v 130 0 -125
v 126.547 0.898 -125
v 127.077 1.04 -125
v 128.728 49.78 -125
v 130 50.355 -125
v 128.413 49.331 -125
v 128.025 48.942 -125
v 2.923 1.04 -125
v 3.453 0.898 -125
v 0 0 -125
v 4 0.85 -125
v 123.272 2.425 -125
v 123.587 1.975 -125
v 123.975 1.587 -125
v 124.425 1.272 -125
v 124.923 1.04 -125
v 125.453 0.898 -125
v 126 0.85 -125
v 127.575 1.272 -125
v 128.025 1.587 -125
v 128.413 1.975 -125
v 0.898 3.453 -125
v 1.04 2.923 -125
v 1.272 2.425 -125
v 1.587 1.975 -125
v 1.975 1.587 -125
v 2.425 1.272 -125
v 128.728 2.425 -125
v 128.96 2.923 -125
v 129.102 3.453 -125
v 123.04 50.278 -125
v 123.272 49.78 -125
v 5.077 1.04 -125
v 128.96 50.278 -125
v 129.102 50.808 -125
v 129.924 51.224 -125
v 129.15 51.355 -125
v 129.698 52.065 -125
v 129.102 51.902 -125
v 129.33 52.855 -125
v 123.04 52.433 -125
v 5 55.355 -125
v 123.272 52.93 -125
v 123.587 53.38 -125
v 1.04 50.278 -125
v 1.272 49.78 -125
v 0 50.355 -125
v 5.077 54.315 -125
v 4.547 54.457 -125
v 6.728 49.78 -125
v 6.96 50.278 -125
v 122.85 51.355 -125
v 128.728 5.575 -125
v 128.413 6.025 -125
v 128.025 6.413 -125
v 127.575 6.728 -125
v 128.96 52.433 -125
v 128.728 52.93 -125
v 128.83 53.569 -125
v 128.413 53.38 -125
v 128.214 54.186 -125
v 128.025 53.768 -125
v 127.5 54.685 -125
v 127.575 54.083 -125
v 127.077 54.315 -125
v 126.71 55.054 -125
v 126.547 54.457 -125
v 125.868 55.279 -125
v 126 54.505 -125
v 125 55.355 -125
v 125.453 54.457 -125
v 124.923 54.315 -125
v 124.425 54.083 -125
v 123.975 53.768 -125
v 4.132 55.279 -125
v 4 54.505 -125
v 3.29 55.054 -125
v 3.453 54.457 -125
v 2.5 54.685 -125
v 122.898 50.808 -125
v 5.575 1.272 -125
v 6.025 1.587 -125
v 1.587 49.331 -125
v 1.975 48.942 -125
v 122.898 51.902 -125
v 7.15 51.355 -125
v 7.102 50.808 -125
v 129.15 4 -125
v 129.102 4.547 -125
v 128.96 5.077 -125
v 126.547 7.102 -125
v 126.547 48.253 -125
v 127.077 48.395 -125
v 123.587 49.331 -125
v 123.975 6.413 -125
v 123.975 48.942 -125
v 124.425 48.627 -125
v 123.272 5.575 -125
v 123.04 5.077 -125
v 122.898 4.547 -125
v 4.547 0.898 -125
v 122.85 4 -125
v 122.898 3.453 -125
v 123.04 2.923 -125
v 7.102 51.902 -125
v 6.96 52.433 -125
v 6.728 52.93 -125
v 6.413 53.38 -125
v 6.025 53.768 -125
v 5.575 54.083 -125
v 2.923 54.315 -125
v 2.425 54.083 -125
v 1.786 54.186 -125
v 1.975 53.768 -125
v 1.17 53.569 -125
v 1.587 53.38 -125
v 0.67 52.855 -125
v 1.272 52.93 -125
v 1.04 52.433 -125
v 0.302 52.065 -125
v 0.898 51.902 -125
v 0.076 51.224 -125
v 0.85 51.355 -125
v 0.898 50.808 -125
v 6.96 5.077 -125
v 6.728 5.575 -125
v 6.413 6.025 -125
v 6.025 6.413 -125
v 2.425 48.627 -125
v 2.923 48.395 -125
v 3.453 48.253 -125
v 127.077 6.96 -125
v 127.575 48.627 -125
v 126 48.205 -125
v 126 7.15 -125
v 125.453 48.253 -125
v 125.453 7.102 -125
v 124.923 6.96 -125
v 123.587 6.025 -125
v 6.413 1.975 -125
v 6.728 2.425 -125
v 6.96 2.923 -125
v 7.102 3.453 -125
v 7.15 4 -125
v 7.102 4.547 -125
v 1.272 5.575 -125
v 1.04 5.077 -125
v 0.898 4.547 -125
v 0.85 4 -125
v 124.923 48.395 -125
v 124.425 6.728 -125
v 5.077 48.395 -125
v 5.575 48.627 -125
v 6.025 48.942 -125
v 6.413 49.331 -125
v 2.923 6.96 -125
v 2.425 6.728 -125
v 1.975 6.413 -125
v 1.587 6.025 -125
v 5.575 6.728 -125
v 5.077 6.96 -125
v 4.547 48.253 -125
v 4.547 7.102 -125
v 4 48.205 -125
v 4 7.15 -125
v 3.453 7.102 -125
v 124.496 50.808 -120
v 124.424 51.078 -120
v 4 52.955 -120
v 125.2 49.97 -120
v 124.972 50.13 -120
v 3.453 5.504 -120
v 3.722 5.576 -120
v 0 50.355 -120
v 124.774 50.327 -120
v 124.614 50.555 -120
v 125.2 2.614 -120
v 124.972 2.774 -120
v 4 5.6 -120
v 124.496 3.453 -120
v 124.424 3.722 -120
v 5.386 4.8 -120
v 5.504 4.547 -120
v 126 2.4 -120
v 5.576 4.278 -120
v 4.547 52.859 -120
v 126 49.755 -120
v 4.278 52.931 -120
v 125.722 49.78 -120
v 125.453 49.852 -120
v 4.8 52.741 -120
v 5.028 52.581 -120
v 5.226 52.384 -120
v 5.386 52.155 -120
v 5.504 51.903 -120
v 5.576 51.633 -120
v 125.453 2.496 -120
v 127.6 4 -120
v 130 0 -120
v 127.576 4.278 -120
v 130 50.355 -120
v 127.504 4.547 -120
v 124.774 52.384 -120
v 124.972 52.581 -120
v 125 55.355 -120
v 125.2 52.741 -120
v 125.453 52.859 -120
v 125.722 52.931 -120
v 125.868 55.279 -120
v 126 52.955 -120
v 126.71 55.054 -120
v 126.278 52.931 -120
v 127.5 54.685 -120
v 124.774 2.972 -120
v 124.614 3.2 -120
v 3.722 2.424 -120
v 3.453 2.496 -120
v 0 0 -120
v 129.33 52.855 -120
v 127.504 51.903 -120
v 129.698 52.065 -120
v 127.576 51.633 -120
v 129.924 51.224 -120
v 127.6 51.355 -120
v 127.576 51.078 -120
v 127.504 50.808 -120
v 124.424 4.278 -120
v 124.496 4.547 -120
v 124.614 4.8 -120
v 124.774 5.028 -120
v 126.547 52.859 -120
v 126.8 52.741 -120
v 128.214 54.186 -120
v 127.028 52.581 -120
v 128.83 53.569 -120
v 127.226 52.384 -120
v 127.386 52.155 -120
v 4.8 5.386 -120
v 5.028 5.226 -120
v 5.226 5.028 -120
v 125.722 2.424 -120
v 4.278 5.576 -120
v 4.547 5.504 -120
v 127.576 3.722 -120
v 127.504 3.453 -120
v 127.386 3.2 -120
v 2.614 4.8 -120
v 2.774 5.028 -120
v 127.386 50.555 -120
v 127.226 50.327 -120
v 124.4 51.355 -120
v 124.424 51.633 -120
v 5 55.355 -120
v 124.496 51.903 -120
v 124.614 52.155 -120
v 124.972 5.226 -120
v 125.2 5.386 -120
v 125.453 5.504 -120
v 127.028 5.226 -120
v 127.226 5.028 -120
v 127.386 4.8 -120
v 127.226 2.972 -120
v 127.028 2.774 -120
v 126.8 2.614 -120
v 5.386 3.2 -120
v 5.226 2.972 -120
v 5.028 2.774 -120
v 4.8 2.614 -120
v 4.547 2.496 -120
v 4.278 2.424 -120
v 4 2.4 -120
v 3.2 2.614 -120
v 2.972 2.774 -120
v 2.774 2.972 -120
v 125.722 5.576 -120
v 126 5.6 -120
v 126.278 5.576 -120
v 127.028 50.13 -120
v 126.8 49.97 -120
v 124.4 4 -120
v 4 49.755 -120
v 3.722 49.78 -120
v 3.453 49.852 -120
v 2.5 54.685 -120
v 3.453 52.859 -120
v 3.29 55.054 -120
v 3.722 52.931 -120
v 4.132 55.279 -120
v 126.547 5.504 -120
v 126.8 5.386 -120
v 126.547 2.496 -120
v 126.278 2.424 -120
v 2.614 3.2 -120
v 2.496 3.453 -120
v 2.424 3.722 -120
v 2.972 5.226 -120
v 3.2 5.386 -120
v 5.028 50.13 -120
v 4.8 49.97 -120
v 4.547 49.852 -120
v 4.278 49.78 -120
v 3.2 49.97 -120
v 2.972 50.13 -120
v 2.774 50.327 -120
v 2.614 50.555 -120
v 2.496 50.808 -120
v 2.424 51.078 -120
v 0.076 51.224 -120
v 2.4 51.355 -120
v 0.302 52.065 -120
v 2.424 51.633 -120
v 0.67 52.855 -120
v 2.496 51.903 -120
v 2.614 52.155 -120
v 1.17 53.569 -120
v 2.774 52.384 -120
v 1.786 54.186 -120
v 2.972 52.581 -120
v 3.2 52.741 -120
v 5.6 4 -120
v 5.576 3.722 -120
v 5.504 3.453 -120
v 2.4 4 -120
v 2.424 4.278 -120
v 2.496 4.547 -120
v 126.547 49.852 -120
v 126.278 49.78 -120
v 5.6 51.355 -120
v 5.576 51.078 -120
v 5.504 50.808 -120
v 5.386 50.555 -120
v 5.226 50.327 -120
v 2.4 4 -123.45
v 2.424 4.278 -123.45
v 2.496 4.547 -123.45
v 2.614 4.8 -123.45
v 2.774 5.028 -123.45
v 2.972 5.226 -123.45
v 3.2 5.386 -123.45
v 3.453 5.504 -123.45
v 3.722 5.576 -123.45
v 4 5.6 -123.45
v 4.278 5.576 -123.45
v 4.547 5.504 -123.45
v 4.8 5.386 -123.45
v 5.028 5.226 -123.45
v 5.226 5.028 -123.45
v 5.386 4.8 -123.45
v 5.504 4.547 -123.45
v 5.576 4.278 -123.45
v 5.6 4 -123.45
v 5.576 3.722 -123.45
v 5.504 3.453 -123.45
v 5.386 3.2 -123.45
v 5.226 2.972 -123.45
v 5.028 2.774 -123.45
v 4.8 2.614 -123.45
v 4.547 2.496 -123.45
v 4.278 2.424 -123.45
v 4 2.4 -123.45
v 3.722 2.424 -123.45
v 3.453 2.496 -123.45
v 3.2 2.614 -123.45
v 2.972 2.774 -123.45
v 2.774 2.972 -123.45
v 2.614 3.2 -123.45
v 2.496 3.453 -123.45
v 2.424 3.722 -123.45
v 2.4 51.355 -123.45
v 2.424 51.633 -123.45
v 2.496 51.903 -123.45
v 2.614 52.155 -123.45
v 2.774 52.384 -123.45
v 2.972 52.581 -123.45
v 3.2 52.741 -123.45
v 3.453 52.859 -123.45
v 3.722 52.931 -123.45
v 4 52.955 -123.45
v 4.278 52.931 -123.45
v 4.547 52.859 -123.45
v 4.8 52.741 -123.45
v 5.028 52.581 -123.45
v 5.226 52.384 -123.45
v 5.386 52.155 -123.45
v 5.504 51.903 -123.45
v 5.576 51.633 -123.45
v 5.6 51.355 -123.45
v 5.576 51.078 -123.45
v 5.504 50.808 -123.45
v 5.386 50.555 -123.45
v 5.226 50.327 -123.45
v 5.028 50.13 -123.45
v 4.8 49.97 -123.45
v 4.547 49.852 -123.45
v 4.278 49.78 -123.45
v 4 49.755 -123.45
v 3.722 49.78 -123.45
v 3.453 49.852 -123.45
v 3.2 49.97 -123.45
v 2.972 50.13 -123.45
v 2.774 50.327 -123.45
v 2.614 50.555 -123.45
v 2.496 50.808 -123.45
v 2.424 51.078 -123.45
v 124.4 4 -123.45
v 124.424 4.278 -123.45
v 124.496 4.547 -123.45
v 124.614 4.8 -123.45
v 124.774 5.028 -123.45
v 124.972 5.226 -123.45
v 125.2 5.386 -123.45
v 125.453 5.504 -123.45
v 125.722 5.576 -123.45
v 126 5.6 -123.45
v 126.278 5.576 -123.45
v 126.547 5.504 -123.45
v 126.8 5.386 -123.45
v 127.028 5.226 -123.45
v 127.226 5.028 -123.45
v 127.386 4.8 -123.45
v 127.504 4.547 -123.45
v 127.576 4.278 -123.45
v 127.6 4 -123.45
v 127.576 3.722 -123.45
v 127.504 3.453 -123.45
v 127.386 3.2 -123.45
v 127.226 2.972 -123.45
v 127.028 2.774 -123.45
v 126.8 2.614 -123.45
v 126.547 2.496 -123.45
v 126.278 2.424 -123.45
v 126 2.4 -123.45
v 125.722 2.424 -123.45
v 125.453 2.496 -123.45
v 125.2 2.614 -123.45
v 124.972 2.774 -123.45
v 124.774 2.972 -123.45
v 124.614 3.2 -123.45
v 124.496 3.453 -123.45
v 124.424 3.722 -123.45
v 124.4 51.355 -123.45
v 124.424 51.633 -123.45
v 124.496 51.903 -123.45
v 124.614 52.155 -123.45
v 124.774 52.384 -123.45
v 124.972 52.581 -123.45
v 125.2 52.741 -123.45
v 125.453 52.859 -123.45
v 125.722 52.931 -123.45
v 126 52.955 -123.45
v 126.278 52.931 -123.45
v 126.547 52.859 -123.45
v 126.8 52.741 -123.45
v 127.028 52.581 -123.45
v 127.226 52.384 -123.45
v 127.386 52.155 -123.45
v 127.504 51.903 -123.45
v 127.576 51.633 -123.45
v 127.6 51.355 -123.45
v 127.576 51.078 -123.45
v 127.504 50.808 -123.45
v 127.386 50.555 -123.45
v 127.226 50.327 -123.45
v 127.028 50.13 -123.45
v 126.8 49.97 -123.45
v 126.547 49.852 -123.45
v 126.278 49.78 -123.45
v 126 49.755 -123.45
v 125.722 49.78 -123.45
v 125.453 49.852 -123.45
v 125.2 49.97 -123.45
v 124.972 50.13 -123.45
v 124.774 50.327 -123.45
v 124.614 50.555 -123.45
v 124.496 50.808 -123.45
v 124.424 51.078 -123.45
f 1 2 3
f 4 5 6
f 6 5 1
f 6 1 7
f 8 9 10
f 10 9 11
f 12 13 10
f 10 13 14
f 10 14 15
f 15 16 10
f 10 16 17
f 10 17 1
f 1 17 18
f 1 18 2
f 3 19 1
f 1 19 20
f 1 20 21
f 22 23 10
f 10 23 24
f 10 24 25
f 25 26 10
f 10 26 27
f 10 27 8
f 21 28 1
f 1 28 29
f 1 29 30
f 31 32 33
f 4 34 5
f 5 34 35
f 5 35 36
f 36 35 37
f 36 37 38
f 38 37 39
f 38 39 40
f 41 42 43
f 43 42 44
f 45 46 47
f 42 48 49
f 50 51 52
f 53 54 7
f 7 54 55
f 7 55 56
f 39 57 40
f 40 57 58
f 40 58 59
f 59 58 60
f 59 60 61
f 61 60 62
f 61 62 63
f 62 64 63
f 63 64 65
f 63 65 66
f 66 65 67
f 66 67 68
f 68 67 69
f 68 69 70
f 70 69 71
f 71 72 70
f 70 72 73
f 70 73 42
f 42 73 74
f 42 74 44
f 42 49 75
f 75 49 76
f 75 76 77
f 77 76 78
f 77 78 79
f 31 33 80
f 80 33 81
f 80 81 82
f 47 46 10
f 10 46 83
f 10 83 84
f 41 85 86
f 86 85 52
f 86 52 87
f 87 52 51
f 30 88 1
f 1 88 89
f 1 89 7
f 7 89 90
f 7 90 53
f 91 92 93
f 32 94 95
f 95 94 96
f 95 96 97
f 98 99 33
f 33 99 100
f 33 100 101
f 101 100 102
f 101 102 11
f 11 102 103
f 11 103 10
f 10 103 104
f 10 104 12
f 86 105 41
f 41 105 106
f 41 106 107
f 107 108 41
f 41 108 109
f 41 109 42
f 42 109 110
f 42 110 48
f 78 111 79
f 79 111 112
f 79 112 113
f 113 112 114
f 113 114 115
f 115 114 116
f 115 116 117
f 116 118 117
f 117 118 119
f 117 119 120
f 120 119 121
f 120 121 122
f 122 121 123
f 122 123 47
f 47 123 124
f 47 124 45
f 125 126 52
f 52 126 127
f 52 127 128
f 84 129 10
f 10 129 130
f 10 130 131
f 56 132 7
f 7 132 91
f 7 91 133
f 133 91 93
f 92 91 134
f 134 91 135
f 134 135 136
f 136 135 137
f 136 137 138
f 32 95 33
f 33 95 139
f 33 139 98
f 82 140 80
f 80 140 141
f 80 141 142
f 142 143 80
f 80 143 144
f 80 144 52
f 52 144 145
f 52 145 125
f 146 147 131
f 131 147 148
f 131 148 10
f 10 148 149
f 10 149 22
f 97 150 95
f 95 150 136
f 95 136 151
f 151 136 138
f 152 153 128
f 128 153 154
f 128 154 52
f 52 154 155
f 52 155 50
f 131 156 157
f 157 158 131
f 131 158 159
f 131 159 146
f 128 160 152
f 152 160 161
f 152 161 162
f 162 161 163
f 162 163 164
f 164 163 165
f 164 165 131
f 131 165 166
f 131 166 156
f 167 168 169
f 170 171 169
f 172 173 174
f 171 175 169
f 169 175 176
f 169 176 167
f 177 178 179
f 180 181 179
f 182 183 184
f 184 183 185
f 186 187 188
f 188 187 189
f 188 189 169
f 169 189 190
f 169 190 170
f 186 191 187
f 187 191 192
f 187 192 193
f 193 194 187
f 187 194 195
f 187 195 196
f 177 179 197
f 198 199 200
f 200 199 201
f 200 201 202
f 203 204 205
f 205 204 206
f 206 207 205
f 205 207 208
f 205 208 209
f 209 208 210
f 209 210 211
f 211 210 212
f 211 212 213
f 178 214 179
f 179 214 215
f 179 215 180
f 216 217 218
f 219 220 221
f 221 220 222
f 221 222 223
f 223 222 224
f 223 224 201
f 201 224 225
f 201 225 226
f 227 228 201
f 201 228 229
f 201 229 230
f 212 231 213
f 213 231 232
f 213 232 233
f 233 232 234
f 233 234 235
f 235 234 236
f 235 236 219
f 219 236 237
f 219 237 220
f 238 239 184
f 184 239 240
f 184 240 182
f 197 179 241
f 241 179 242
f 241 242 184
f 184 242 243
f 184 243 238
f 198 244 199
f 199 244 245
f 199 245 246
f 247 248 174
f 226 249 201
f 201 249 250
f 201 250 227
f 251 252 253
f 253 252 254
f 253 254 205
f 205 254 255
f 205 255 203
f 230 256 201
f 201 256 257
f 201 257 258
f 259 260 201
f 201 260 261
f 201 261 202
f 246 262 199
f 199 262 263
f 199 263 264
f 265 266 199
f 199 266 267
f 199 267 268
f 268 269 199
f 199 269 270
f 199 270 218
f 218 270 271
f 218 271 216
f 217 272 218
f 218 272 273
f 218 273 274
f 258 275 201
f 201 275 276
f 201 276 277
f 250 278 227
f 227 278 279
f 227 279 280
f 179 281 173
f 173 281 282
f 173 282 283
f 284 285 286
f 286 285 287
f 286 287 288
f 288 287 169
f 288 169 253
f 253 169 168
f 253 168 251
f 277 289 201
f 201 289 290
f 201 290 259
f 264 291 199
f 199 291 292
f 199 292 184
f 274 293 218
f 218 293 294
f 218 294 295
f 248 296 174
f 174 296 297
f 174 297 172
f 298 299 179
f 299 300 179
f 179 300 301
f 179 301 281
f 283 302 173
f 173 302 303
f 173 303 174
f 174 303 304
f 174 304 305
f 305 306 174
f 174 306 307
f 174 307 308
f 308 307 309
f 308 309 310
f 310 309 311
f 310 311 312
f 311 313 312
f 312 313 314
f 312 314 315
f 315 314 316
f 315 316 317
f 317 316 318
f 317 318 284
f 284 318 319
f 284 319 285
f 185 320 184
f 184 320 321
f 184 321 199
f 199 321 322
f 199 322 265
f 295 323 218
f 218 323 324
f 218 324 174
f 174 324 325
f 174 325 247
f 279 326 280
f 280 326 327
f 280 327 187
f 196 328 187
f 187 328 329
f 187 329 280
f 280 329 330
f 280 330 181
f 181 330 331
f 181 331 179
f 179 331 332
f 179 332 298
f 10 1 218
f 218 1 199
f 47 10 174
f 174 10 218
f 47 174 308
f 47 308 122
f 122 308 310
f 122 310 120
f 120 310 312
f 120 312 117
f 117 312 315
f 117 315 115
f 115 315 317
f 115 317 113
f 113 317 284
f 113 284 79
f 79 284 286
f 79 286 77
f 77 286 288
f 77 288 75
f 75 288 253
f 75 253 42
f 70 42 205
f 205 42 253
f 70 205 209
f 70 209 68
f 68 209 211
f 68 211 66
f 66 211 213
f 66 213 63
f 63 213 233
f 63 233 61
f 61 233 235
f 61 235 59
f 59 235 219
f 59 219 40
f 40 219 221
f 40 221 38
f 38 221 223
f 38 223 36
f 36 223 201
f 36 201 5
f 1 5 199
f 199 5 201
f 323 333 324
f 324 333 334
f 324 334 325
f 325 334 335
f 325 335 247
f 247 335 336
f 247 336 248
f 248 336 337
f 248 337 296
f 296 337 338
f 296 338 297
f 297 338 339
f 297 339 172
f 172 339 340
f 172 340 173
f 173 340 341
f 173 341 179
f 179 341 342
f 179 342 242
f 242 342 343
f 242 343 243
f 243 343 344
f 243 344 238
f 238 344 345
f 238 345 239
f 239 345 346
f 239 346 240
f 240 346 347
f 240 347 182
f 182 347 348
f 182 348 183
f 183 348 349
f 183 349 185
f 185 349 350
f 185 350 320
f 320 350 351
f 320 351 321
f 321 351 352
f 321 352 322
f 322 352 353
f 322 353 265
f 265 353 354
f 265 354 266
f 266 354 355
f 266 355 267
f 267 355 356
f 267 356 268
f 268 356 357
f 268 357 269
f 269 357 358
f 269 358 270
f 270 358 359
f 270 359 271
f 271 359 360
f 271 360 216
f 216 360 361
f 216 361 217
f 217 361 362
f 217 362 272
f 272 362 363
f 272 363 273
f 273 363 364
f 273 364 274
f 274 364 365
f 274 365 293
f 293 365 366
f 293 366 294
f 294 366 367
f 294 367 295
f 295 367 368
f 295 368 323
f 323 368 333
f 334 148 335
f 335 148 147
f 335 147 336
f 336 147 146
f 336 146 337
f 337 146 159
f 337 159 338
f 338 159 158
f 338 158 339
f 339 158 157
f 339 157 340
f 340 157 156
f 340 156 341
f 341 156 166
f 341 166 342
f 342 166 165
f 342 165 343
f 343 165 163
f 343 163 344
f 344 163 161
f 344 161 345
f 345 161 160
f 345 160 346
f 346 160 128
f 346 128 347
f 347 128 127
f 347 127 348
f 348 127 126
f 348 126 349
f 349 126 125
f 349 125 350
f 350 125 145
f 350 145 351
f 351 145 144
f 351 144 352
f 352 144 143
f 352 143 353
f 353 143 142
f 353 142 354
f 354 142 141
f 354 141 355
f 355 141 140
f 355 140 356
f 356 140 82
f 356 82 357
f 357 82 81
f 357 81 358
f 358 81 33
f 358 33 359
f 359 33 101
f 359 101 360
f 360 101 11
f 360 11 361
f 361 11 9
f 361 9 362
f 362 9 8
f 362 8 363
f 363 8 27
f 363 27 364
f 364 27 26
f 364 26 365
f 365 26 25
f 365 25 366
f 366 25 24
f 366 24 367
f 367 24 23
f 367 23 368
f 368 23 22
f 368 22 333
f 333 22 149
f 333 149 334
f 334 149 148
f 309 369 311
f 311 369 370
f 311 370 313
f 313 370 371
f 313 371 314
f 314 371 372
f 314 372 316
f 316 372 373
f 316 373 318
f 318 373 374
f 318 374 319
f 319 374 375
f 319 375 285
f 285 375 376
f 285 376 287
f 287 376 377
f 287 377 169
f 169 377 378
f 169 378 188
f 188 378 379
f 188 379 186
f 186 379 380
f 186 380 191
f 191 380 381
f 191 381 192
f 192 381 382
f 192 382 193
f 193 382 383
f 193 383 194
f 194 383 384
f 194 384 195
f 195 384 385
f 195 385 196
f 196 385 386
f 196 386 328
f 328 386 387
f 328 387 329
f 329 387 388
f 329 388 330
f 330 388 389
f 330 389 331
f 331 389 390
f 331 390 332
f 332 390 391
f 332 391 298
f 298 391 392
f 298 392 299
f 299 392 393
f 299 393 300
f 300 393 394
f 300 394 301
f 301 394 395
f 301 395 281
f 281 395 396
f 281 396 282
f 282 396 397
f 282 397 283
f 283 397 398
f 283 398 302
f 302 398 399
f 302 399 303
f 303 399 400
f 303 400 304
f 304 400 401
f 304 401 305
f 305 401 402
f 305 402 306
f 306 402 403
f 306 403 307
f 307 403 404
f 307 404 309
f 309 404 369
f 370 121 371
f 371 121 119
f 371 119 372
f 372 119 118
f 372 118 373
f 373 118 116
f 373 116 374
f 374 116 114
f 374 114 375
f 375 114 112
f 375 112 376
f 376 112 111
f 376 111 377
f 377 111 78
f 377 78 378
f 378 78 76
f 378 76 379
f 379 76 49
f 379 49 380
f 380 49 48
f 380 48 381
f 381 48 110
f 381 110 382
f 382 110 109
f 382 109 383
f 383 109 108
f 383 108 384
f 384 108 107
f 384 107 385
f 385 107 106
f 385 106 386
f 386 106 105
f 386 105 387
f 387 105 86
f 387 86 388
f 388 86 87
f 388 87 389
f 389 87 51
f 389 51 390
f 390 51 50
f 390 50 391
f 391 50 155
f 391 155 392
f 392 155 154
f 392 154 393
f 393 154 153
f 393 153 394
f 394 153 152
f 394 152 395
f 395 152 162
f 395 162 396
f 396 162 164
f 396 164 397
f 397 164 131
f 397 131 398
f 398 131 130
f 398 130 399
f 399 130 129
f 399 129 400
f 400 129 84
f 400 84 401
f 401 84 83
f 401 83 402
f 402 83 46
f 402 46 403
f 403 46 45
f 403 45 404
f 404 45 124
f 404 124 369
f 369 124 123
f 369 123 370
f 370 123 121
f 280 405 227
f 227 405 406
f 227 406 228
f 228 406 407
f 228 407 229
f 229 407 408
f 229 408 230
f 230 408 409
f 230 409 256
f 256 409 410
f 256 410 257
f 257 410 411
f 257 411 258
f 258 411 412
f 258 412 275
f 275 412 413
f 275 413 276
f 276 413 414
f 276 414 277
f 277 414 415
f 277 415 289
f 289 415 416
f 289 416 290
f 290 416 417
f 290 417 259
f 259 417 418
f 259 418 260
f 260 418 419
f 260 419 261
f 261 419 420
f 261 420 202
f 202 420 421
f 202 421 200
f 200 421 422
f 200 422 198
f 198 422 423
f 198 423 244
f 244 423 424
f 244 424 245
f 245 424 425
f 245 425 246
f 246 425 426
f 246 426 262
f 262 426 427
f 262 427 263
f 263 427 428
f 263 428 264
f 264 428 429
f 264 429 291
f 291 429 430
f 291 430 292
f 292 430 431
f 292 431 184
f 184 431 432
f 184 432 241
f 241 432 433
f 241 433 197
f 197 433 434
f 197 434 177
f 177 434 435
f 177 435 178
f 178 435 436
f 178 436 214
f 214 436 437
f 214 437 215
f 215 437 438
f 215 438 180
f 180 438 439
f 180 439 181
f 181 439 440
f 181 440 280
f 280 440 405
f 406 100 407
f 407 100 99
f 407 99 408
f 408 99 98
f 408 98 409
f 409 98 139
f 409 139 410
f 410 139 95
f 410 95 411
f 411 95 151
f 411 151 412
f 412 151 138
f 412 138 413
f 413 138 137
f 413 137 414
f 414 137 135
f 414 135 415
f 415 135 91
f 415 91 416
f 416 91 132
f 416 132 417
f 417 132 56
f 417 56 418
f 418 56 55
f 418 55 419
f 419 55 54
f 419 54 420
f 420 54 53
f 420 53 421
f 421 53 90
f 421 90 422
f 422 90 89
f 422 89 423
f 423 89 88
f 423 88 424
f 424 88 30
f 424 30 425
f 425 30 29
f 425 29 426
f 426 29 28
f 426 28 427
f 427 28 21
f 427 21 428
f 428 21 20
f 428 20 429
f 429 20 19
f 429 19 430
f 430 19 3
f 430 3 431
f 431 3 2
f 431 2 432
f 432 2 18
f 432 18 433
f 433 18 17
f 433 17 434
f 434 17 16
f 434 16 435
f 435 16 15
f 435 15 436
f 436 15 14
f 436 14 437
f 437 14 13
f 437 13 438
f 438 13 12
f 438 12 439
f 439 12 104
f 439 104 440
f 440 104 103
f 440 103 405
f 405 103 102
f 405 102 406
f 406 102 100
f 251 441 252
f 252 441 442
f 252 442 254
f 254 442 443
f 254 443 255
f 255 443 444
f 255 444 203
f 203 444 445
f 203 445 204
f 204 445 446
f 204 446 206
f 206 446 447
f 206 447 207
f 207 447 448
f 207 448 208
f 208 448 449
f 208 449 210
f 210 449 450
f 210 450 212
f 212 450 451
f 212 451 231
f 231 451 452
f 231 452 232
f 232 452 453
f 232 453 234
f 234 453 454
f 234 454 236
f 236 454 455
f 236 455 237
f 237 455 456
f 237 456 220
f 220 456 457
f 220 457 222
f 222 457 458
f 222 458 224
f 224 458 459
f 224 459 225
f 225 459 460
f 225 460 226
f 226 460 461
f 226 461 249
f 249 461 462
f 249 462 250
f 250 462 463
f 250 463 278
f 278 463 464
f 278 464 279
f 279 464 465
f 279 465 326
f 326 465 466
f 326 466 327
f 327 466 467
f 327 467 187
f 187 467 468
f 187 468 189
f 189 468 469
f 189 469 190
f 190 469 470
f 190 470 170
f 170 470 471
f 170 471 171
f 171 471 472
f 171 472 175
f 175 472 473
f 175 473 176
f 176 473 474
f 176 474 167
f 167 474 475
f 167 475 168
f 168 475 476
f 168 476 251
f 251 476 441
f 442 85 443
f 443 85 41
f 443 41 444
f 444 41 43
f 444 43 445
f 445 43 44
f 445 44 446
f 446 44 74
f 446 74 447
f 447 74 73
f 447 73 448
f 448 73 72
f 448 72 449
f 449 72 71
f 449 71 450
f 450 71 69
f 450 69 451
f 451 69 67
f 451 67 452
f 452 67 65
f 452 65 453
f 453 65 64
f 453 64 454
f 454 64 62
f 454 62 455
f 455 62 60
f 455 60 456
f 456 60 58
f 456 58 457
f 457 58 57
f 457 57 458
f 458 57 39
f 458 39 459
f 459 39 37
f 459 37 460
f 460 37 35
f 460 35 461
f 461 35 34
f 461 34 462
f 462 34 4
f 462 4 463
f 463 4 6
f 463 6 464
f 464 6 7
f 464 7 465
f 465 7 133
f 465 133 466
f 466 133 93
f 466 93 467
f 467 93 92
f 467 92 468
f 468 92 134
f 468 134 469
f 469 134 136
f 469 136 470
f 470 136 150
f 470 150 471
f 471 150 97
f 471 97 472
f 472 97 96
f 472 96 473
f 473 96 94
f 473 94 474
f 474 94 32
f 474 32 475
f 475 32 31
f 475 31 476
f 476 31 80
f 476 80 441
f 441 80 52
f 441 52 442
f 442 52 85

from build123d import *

# Parameters (mm, degrees)
BOSS_EXTRUDE1_DEPTH                                 = 130
SHELL1_T                                            = -5
SKETCH3_R                                           = 3.4
SKETCH3_W                                           = 73.1
SKETCH3_H                                           = 26.5
CUT_EXTRUDE1_DEPTH                                  = 5
FILLET1_R                                           = 10
FILLET2_R                                           = 5
CUT_EXTRUDE2_DEPTH                                  = 5
FILLET3_R                                           = 5
CUT_EXTRUDE3_REACH                                  = 191.36
SKETCH5_R                                           = 1.4
CUT_EXTRUDE4_REACH                                  = 191.36
SKETCH6_R                                           = 1.1
CUT_EXTRUDE5_REACH                                  = 185.945
SKETCH7_R                                           = 1.5
CSK_FOR_M3_COUNTERSUNK_FLAT_HEAD_SCREW2_D           = 3.2
CSK_FOR_M3_COUNTERSUNK_FLAT_HEAD_SCREW2_DEPTH       = 8
CSK_FOR_M3_COUNTERSUNK_FLAT_HEAD_SCREW2_CSINK_D     = 6.3
CSK_FOR_M3_COUNTERSUNK_FLAT_HEAD_SCREW2_CSINK_ANGLE = 90
CSK_FOR_M3_COUNTERSUNK_FLAT_HEAD_SCREW2_TIP         = 0.96137699
CUT_EXTRUDE6_REACH                                  = 187.376
SKETCH15_R                                          = 1.2
CUT_EXTRUDE7_DEPTH                                  = 20
SKETCH16_R                                          = 1.2
BOSS_EXTRUDE2_DEPTH                                 = 5
CSK_FOR_M3_COUNTERSUNK_FLAT_HEAD_SCR_2_COUNT        = 2
CSK_FOR_M3_COUNTERSUNK_FLAT_HEAD_SCR_2_PITCH        = 47.355339059
CSK_FOR_M3_COUNTERSUNK_FLAT_HEAD_SCR_3_COUNT        = 2
CSK_FOR_M3_COUNTERSUNK_FLAT_HEAD_SCR_3_PITCH        = 122
CSK_FOR_M3_COUNTERSUNK_FLAT_HEAD_SCR_4_COUNT        = 2
CSK_FOR_M3_COUNTERSUNK_FLAT_HEAD_SCR_4_PITCH        = 130.868361866


with BuildPart() as part:
    # Sketch2 → Boss-Extrude1 (new body)
    with BuildSketch(Plane(origin=(0, 0, 0), x_dir=(0, 0, -1), z_dir=(1, 0, 0))):
        Polygon((0, 0), (0, 20), (35.355339059, 55.355339059), (120, 55.355339059), (120, 0), align=None)
    extrude(amount=BOSS_EXTRUDE1_DEPTH)

    # Shell1
    shell1_openings = [part.faces().sort_by_distance(p)[0] for p in [
        (65, 27.67766953, -120),
    ]]
    offset(amount=SHELL1_T, openings=shell1_openings, kind=Kind.INTERSECTION)

    # Sketch3 → Cut-Extrude1 (cut)
    with BuildSketch(Plane(origin=(0, 10, 10), x_dir=(1, 0, 0), z_dir=(0, 0.7071067811865486, 0.7071067811865465))):
        with Locations(Location((108.1, 39.142135624, 0), (0, 0, 270))):
            Circle(SKETCH3_R)
        with Locations((53.55, 39.142135624)):
            Rectangle(SKETCH3_W, SKETCH3_H)
    extrude(amount=-CUT_EXTRUDE1_DEPTH, mode=Mode.SUBTRACT)

    # Fillet1
    # the kernel refuses this fillet: 10 mm, written as the material it adds along each edge
    with BuildSketch(Plane(origin=(125, 50.355339059, -37.426406871), x_dir=(0, 0, -1), z_dir=(-1, 0, 0)), Plane(origin=(125, 17.928932188, -5), x_dir=(0, 0.7071067811865465, -0.7071067811865486), z_dir=(-1, 0, 0))) as fillet1_piece_1:
        with BuildLine():
            CenterArc((FILLET1_R * 0.414213562373, FILLET1_R), FILLET1_R, 225, 45)
            Line((-FILLET1_R * 0.292893218813, FILLET1_R * 0.292893218813), (0, 0))
            Line((0, 0), (FILLET1_R * 0.414213562373, 0))
        make_face()
    extrude(amount=120)
    with BuildSketch(Plane(origin=(5, 5, -5), x_dir=(0, 0, -1), z_dir=(1, 0, 0))) as fillet1_piece_2:
        with BuildLine():
            CenterArc((FILLET1_R, FILLET1_R), FILLET1_R, 180, 90)
            Line((0, FILLET1_R), (0, 0))
            Line((0, 0), (FILLET1_R, 0))
        make_face()
    extrude(amount=120)
    # the kernel refuses this fillet: 10 mm, written as the material it takes off along each edge
    with BuildSketch(Plane(origin=(-10.355339059, 20, 0), x_dir=(0, -1, 0), z_dir=(1, 0, 0)), Plane(origin=(-10.355339059, 55.355339059, -35.355339059), x_dir=(0, -0.7071067811865476, 0.7071067811865476), z_dir=(1, 0, 0))) as fillet1_2_piece_1:
        with BuildLine():
            CenterArc((FILLET1_R * 0.414213562373, FILLET1_R), FILLET1_R, 225, 45)
            Line((-FILLET1_R * 0.292893218813, FILLET1_R * 0.292893218813), (0, 0))
            Line((0, 0), (FILLET1_R * 0.414213562373, 0))
        make_face()
    extrude(amount=150.710678119, mode=Mode.SUBTRACT)

    # Fillet2
    fillet2_edges = [part.edges().sort_by_distance(p)[0] for p in [
        (130, 55.355339059, -79.748737342),
        (0, 7.928932188, 0),
        (130, 7.928932188, 0),
        (0, 37.67766953, -17.67766953),
        (0, 54.594134384, -35.670640359),
        (0, 19.6846987, -0.761204675),
        (130, 37.67766953, -17.67766953),
        (130, 54.594134384, -35.670640359),
        (130, 19.6846987, -0.761204675),
        (0, 55.355339059, -79.748737342),
    ]]
    fillet(fillet2_edges, radius=FILLET2_R)

    # Sketch4 → Cut-Extrude2 (cut)
    with BuildSketch(Plane(origin=(130, 0, 0), x_dir=(0, 0, -1), z_dir=(1, 0, 0))):
        with BuildLine():
            Line((108, 22), (112, 22))
            ThreePointArc((112, 22), (113.414213562, 21.414213562), (114, 20))
            Line((114, 20), (114, 17))
            ThreePointArc((114, 17), (113.414213562, 15.585786438), (112, 15))
            Line((112, 15), (108, 15))
            ThreePointArc((108, 15), (106.585786438, 15.585786438), (106, 17))
            Line((106, 17), (106, 20))
            ThreePointArc((106, 20), (106.585786438, 21.414213562), (108, 22))
        make_face()
    extrude(amount=-CUT_EXTRUDE2_DEPTH, mode=Mode.SUBTRACT)

    # Fillet3
    # the kernel refuses this fillet: 5 mm, written as the material it adds along each edge
    with BuildSketch(Plane(origin=(5, 50.355339059, -120), x_dir=(1, 0, 0), z_dir=(0, 0, 1))) as fillet3_piece_1:
        with BuildLine():
            CenterArc((FILLET3_R, -FILLET3_R), FILLET3_R, 90, 90)
            Line((0, -FILLET3_R), (0, 0))
            Line((0, 0), (FILLET3_R, 0))
        make_face()
    fillet3_piece_1_solid = extrude(amount=78.431457505, mode=Mode.PRIVATE)
    with BuildSketch(Plane(origin=(125, 50.355339059, -120), x_dir=(-1, 0, 0), z_dir=(0, 0, 1))) as fillet3_piece_2:
        with BuildLine():
            CenterArc((FILLET3_R, FILLET3_R), FILLET3_R, 180, 90)
            Line((0, FILLET3_R), (0, 0))
            Line((0, 0), (FILLET3_R, 0))
        make_face()
    fillet3_piece_2_solid = extrude(amount=78.431457505, mode=Mode.PRIVATE)
    with BuildSketch(Plane(origin=(5, 5, -15), x_dir=(0, 1, 0), z_dir=(0, 0, -1)), Plane(origin=(125, 5, -15), x_dir=(-1, 0, 0), z_dir=(0, 0, -1))) as fillet3_piece_3:
        with BuildLine():
            CenterArc((FILLET3_R, FILLET3_R), FILLET3_R, 180, 90)
            Line((0, FILLET3_R), (0, 0))
            Line((0, 0), (FILLET3_R, 0))
        make_face()
    fillet3_piece_3_solid = extrude(amount=105, mode=Mode.PRIVATE)
    with BuildSketch(Plane(origin=(5, 47.426406871, -34.497474683), x_dir=(0, -0.7071067811865487, -0.7071067811865464), z_dir=(0, -0.7071067811865465, 0.7071067811865487))) as fillet3_piece_4:
        with BuildLine():
            CenterArc((FILLET3_R, FILLET3_R), FILLET3_R, 180, 90)
            Line((0, FILLET3_R), (0, 0))
            Line((0, 0), (FILLET3_R, 0))
        make_face()
    fillet3_piece_4_solid = extrude(amount=37.573593129, mode=Mode.PRIVATE)
    with BuildSketch(Plane(origin=(5, 13.786796564, -15), x_dir=(0, -0.9281493111658919, 0.3722080818336436), z_dir=(0, -0.3722080818336436, -0.9281493111658919))) as fillet3_piece_5:
        with BuildLine():
            CenterArc((10 - FILLET3_R, -FILLET3_R), FILLET3_R, 0, 90)
            Line((10, -FILLET3_R), (10, 0))
            Line((10, 0), (10 - FILLET3_R, 0))
        make_face()
    fillet3_piece_5_solid = revolve(axis=Axis((5, 13.786796564, -15), (-1, 0, 0)), revolution_arc=113.148139986, mode=Mode.PRIVATE)
    with BuildSketch(Plane(origin=(5, 15, -15), x_dir=(0, 0.9282822091618541, 0.37187651196813665), z_dir=(0, 0.37187651196813665, -0.9282822091618541))) as fillet3_piece_6:
        with BuildLine():
            CenterArc((10 - FILLET3_R, FILLET3_R), FILLET3_R, 270, 90)
            Line((10, FILLET3_R), (10, 0))
            Line((10, 0), (10 - FILLET3_R, 0))
        make_face()
    fillet3_piece_6_solid = revolve(axis=Axis((5, 15, -15), (1, 0, 0)), revolution_arc=158.168606729, mode=Mode.PRIVATE)
    with BuildSketch(Plane(origin=(5, 40.355339059, -41.568542495), x_dir=(0, 0.7071067811865476, 0.7071067811865476), z_dir=(0, -0.7071067811865476, 0.7071067811865476))) as fillet3_piece_7:
        with BuildLine():
            CenterArc((10 - FILLET3_R, -FILLET3_R), FILLET3_R, 0, 90)
            Line((10, -FILLET3_R), (10, 0))
            Line((10, 0), (10 - FILLET3_R, 0))
        make_face()
    fillet3_piece_7_solid = revolve(axis=Axis((5, 40.355339059, -41.568542495), (-1, 0, 0)), revolution_arc=45, mode=Mode.PRIVATE)
    with BuildSketch(Plane(origin=(125, 47.426406871, -34.497474683), x_dir=(-2.842170943040401e-15, -0.7071067811865487, -0.7071067811865464), z_dir=(0, -0.7071067811865465, 0.7071067811865487))) as fillet3_piece_8:
        with BuildLine():
            CenterArc((FILLET3_R, -FILLET3_R), FILLET3_R, 90, 90)
            Line((0, -FILLET3_R), (0, 0))
            Line((0, 0), (FILLET3_R, 0))
        make_face()
    fillet3_piece_8_solid = extrude(amount=37.573593129, mode=Mode.PRIVATE)
    with BuildSketch(Plane(origin=(125, 13.786796564, -15), x_dir=(0, -0.9281493111658919, 0.3722080818336436), z_dir=(0, -0.3722080818336436, -0.9281493111658919))) as fillet3_piece_9:
        with BuildLine():
            CenterArc((10 - FILLET3_R, FILLET3_R), FILLET3_R, 270, 90)
            Line((10, FILLET3_R), (10, 0))
            Line((10, 0), (10 - FILLET3_R, 0))
        make_face()
    fillet3_piece_9_solid = revolve(axis=Axis((125, 13.786796564, -15), (-1, 0, 0)), revolution_arc=113.148139986, mode=Mode.PRIVATE)
    with BuildSketch(Plane(origin=(125, 15, -15), x_dir=(0, 0.9282822091618541, 0.37187651196813665), z_dir=(0, 0.37187651196813665, -0.9282822091618541))) as fillet3_piece_10:
        with BuildLine():
            CenterArc((10 - FILLET3_R, -FILLET3_R), FILLET3_R, 0, 90)
            Line((10, -FILLET3_R), (10, 0))
            Line((10, 0), (10 - FILLET3_R, 0))
        make_face()
    fillet3_piece_10_solid = revolve(axis=Axis((125, 15, -15), (1, 0, 0)), revolution_arc=158.168606729, mode=Mode.PRIVATE)
    with BuildSketch(Plane(origin=(125, 40.355339059, -41.568542495), x_dir=(0, 0.7071067811865476, 0.7071067811865476), z_dir=(0, -0.7071067811865476, 0.7071067811865476))) as fillet3_piece_11:
        with BuildLine():
            CenterArc((10 - FILLET3_R, FILLET3_R), FILLET3_R, 270, 90)
            Line((10, FILLET3_R), (10, 0))
            Line((10, 0), (10 - FILLET3_R, 0))
        make_face()
    fillet3_piece_11_solid = revolve(axis=Axis((125, 40.355339059, -41.568542495), (-1, 0, 0)), revolution_arc=45, mode=Mode.PRIVATE)
    add([fillet3_piece_1_solid, fillet3_piece_2_solid, fillet3_piece_3_solid, fillet3_piece_4_solid, fillet3_piece_5_solid, fillet3_piece_6_solid, fillet3_piece_7_solid, fillet3_piece_8_solid, fillet3_piece_9_solid, fillet3_piece_10_solid, fillet3_piece_11_solid])

    # Sketch5 → Cut-Extrude3 (cut, up to next)
    with BuildSketch(Plane(origin=(0, 10, 10), x_dir=(1, 0, 0), z_dir=(0, 0.7071067811865486, 0.7071067811865465)), mode=Mode.PRIVATE) as cut_extrude3_sk1:
        with Locations(Location((116.3, 48.442135624, 0), (0, 0, 270))):
            Circle(SKETCH5_R)
    cut_extrude3_tool1 = extrude(cut_extrude3_sk1.sketch, amount=-CUT_EXTRUDE3_REACH, mode=Mode.PRIVATE) & part.part
    # Sketch5 → Cut-Extrude3 (cut, up to next)
    with BuildSketch(Plane(origin=(0, 10, 10), x_dir=(1, 0, 0), z_dir=(0, 0.7071067811865486, 0.7071067811865465)), mode=Mode.PRIVATE) as cut_extrude3_sk2:
        with Locations(Location((116.3, 34.442135624, 0), (0, 0, 270))):
            Circle(SKETCH5_R)
    cut_extrude3_tool2 = extrude(cut_extrude3_sk2.sketch, amount=-CUT_EXTRUDE3_REACH, mode=Mode.PRIVATE) & part.part
    add(cut_extrude3_tool1.solids().sort_by_distance((116.3, 44.253763, -24.253763))[0], mode=Mode.SUBTRACT)
    add(cut_extrude3_tool2.solids().sort_by_distance((116.3, 34.354268, -14.354268))[0], mode=Mode.SUBTRACT)

    # Sketch6 → Cut-Extrude4 (cut, up to next)
    with BuildSketch(Plane(origin=(0, 10, 10), x_dir=(1, 0, 0), z_dir=(0, 0.7071067811865486, 0.7071067811865465)), mode=Mode.PRIVATE) as cut_extrude4_sk1:
        with Locations(Location((15.8, 54.392135624, 0), (0, 0, 270))):
            Circle(SKETCH6_R)
    cut_extrude4_tool1 = extrude(cut_extrude4_sk1.sketch, amount=-CUT_EXTRUDE4_REACH, mode=Mode.PRIVATE) & part.part
    # Sketch6 → Cut-Extrude4 (cut, up to next)
    with BuildSketch(Plane(origin=(0, 10, 10), x_dir=(1, 0, 0), z_dir=(0, 0.7071067811865486, 0.7071067811865465)), mode=Mode.PRIVATE) as cut_extrude4_sk2:
        with Locations(Location((90.8, 54.392135624, 0), (0, 0, 270))):
            Circle(SKETCH6_R)
    cut_extrude4_tool2 = extrude(cut_extrude4_sk2.sketch, amount=-CUT_EXTRUDE4_REACH, mode=Mode.PRIVATE) & part.part
    # Sketch6 → Cut-Extrude4 (cut, up to next)
    with BuildSketch(Plane(origin=(0, 10, 10), x_dir=(1, 0, 0), z_dir=(0, 0.7071067811865486, 0.7071067811865465)), mode=Mode.PRIVATE) as cut_extrude4_sk3:
        with Locations(Location((90.8, 23.392135624, 0), (0, 0, 270))):
            Circle(SKETCH6_R)
    cut_extrude4_tool3 = extrude(cut_extrude4_sk3.sketch, amount=-CUT_EXTRUDE4_REACH, mode=Mode.PRIVATE) & part.part
    # Sketch6 → Cut-Extrude4 (cut, up to next)
    with BuildSketch(Plane(origin=(0, 10, 10), x_dir=(1, 0, 0), z_dir=(0, 0.7071067811865486, 0.7071067811865465)), mode=Mode.PRIVATE) as cut_extrude4_sk4:
        with Locations(Location((15.8, 23.392135624, 0), (0, 0, 270))):
            Circle(SKETCH6_R)
    cut_extrude4_tool4 = extrude(cut_extrude4_sk4.sketch, amount=-CUT_EXTRUDE4_REACH, mode=Mode.PRIVATE) & part.part
    add(cut_extrude4_tool1.solids().sort_by_distance((15.8, 48.461048, -28.461048))[0], mode=Mode.SUBTRACT)
    add(cut_extrude4_tool2.solids().sort_by_distance((90.8, 48.461048, -28.461048))[0], mode=Mode.SUBTRACT)
    add(cut_extrude4_tool3.solids().sort_by_distance((90.8, 26.540738, -6.540738))[0], mode=Mode.SUBTRACT)
    add(cut_extrude4_tool4.solids().sort_by_distance((15.8, 26.540738, -6.540738))[0], mode=Mode.SUBTRACT)

    # Sketch7 → Cut-Extrude5 (cut, up to next)
    with BuildSketch(Plane(origin=(0, 5, 0), x_dir=(1, 0, 0), z_dir=(0, 1, 0)), mode=Mode.PRIVATE) as cut_extrude5_sk1:
        with Locations(Location((16.5, 21.5, 0), (0, 0, 270))):
            Circle(SKETCH7_R)
    cut_extrude5_tool1 = extrude(cut_extrude5_sk1.sketch, amount=-CUT_EXTRUDE5_REACH, mode=Mode.PRIVATE) & part.part
    # Sketch7 → Cut-Extrude5 (cut, up to next)
    with BuildSketch(Plane(origin=(0, 5, 0), x_dir=(1, 0, 0), z_dir=(0, 1, 0)), mode=Mode.PRIVATE) as cut_extrude5_sk2:
        with Locations(Location((16.5, 64.5, 0), (0, 0, 270))):
            Circle(SKETCH7_R)
    cut_extrude5_tool2 = extrude(cut_extrude5_sk2.sketch, amount=-CUT_EXTRUDE5_REACH, mode=Mode.PRIVATE) & part.part
    # Sketch7 → Cut-Extrude5 (cut, up to next)
    with BuildSketch(Plane(origin=(0, 5, 0), x_dir=(1, 0, 0), z_dir=(0, 1, 0)), mode=Mode.PRIVATE) as cut_extrude5_sk3:
        with Locations(Location((109.5, 21.5, 0), (0, 0, 270))):
            Circle(SKETCH7_R)
    cut_extrude5_tool3 = extrude(cut_extrude5_sk3.sketch, amount=-CUT_EXTRUDE5_REACH, mode=Mode.PRIVATE) & part.part
    # Sketch7 → Cut-Extrude5 (cut, up to next)
    with BuildSketch(Plane(origin=(0, 5, 0), x_dir=(1, 0, 0), z_dir=(0, 1, 0)), mode=Mode.PRIVATE) as cut_extrude5_sk4:
        with Locations(Location((109.5, 64.5, 0), (0, 0, 270))):
            Circle(SKETCH7_R)
    cut_extrude5_tool4 = extrude(cut_extrude5_sk4.sketch, amount=-CUT_EXTRUDE5_REACH, mode=Mode.PRIVATE) & part.part
    # Sketch7 → Cut-Extrude5 (cut, up to next)
    with BuildSketch(Plane(origin=(0, 5, 0), x_dir=(1, 0, 0), z_dir=(0, 1, 0)), mode=Mode.PRIVATE) as cut_extrude5_sk5:
        with Locations(Location((109, 79, 0), (0, 0, 270))):
            Circle(SKETCH7_R)
    cut_extrude5_tool5 = extrude(cut_extrude5_sk5.sketch, amount=-CUT_EXTRUDE5_REACH, mode=Mode.PRIVATE) & part.part
    # Sketch7 → Cut-Extrude5 (cut, up to next)
    with BuildSketch(Plane(origin=(0, 5, 0), x_dir=(1, 0, 0), z_dir=(0, 1, 0)), mode=Mode.PRIVATE) as cut_extrude5_sk6:
        with Locations(Location((53, 79, 0), (0, 0, 270))):
            Circle(SKETCH7_R)
    cut_extrude5_tool6 = extrude(cut_extrude5_sk6.sketch, amount=-CUT_EXTRUDE5_REACH, mode=Mode.PRIVATE) & part.part
    # Sketch7 → Cut-Extrude5 (cut, up to next)
    with BuildSketch(Plane(origin=(0, 5, 0), x_dir=(1, 0, 0), z_dir=(0, 1, 0)), mode=Mode.PRIVATE) as cut_extrude5_sk7:
        with Locations(Location((53, 115, 0), (0, 0, 270))):
            Circle(SKETCH7_R)
    cut_extrude5_tool7 = extrude(cut_extrude5_sk7.sketch, amount=-CUT_EXTRUDE5_REACH, mode=Mode.PRIVATE) & part.part
    # Sketch7 → Cut-Extrude5 (cut, up to next)
    with BuildSketch(Plane(origin=(0, 5, 0), x_dir=(1, 0, 0), z_dir=(0, 1, 0)), mode=Mode.PRIVATE) as cut_extrude5_sk8:
        with Locations(Location((109, 115, 0), (0, 0, 270))):
            Circle(SKETCH7_R)
    cut_extrude5_tool8 = extrude(cut_extrude5_sk8.sketch, amount=-CUT_EXTRUDE5_REACH, mode=Mode.PRIVATE) & part.part
    add(cut_extrude5_tool1.solids().sort_by_distance((16.5, 5, -21.5))[0], mode=Mode.SUBTRACT)
    add(cut_extrude5_tool2.solids().sort_by_distance((16.5, 5, -64.5))[0], mode=Mode.SUBTRACT)
    add(cut_extrude5_tool3.solids().sort_by_distance((109.5, 5, -21.5))[0], mode=Mode.SUBTRACT)
    add(cut_extrude5_tool4.solids().sort_by_distance((109.5, 5, -64.5))[0], mode=Mode.SUBTRACT)
    add(cut_extrude5_tool5.solids().sort_by_distance((109, 5, -79))[0], mode=Mode.SUBTRACT)
    add(cut_extrude5_tool6.solids().sort_by_distance((53, 5, -79))[0], mode=Mode.SUBTRACT)
    add(cut_extrude5_tool7.solids().sort_by_distance((53, 5, -115))[0], mode=Mode.SUBTRACT)
    add(cut_extrude5_tool8.solids().sort_by_distance((109, 5, -115))[0], mode=Mode.SUBTRACT)

    # CSK for M3 Countersunk Flat Head Screw2
    with Locations(Plane(origin=(0, 0, 0), x_dir=(-1, 0, 0), z_dir=(0, -1, 0))):
        with Locations((-109, 115), (-53, 115), (-53, 79), (-109, 79), (-16.5, 64.5), (-16.5, 21.5), (-109.5, 21.5), (-109.5, 64.5)):
            CounterSinkHole(CSK_FOR_M3_COUNTERSUNK_FLAT_HEAD_SCREW2_D / 2, CSK_FOR_M3_COUNTERSUNK_FLAT_HEAD_SCREW2_CSINK_D / 2, depth=CSK_FOR_M3_COUNTERSUNK_FLAT_HEAD_SCREW2_DEPTH, counter_sink_angle=CSK_FOR_M3_COUNTERSUNK_FLAT_HEAD_SCREW2_CSINK_ANGLE)
            with Locations((0, 0, -(CSK_FOR_M3_COUNTERSUNK_FLAT_HEAD_SCREW2_DEPTH + CSK_FOR_M3_COUNTERSUNK_FLAT_HEAD_SCREW2_TIP / 2))):  # 118° drill point
                Cone(0, CSK_FOR_M3_COUNTERSUNK_FLAT_HEAD_SCREW2_D / 2, CSK_FOR_M3_COUNTERSUNK_FLAT_HEAD_SCREW2_TIP, mode=Mode.SUBTRACT)

    # Sketch14 → Cut-Extrude6 (cut, up to next)
    with BuildSketch(Plane.ZY, mode=Mode.PRIVATE) as cut_extrude6_sk1:
        with BuildLine():
            Line((-34, 18.5), (-30, 18.5))
            ThreePointArc((-30, 18.5), (-26, 14.5), (-30, 10.5))
            Line((-30, 10.5), (-34, 10.5))
            ThreePointArc((-34, 10.5), (-38, 14.5), (-34, 18.5))
        make_face()
    cut_extrude6_tool1 = extrude(cut_extrude6_sk1.sketch, amount=-CUT_EXTRUDE6_REACH, mode=Mode.PRIVATE) & part.part
    add(cut_extrude6_tool1.solids().sort_by_distance((0, 14.5, -32))[0], mode=Mode.SUBTRACT)

    # Sketch15 → Cut-Extrude7 (cut)
    with BuildSketch(Plane(origin=(0, 0, -120), x_dir=(-1, 0, 0), z_dir=(0, 0, -1))):
        with Locations((-126, 51.355339059)):
            Circle(SKETCH15_R)
        with Locations((-126, 4)):
            Circle(SKETCH15_R)
        with Locations((-4, 4)):
            Circle(SKETCH15_R)
        with Locations((-4, 51.355339059)):
            Circle(SKETCH15_R)
    extrude(amount=-CUT_EXTRUDE7_DEPTH, mode=Mode.SUBTRACT)


with BuildPart() as body_2:
    # Sketch16 → Boss-Extrude2 (new body)
    with BuildSketch(Plane(origin=(0, 0, -120), x_dir=(-1, 0, 0), z_dir=(0, 0, -1))):
        with BuildLine():
            Line((0, 0), (0, 50.355339059))
            ThreePointArc((0, 50.355339059), (-1.464466094, 53.890872965), (-5, 55.355339059))
            Line((-5, 55.355339059), (-125, 55.355339059))
            ThreePointArc((-125, 55.355339059), (-128.535533906, 53.890872965), (-130, 50.355339059))
            Line((-130, 50.355339059), (-130, 0))
            Line((-130, 0), (0, 0))
        make_face()
        with Locations((-126, 4)):
            Circle(SKETCH16_R, mode=Mode.SUBTRACT)
        with Locations((-4, 4)):
            Circle(SKETCH16_R, mode=Mode.SUBTRACT)
        with Locations((-4, 51.355339059)):
            Circle(SKETCH16_R, mode=Mode.SUBTRACT)
        with Locations((-126, 51.355339059)):
            Circle(SKETCH16_R, mode=Mode.SUBTRACT)
    extrude(amount=BOSS_EXTRUDE2_DEPTH)

    # Sketch20 → CSK for M3 Countersunk Flat Head Screw3 (revolve, cut)
    with BuildSketch(Plane(origin=(126, 51.355339059, -125), x_dir=(0, 1, 0), z_dir=(1, 0, 0))):
        Polygon((0, 0), (0, 8.96137699), (1.6, 8), (1.6, 1.55), (3.15, 0), align=None)
    csk_for_m3_countersunk_flat_head_screw3 = revolve(axis=Axis((126, 51.355339059, -131.35), (0, 0, 1)), mode=Mode.SUBTRACT)

    # CSK for M3 Countersunk Flat Head Scr 2: CSK for M3 Countersunk Flat Head Screw3 ×2
    with Locations(*[(0, -i * CSK_FOR_M3_COUNTERSUNK_FLAT_HEAD_SCR_2_PITCH, 0) for i in range(1, CSK_FOR_M3_COUNTERSUNK_FLAT_HEAD_SCR_2_COUNT)]):
        add(csk_for_m3_countersunk_flat_head_screw3, mode=Mode.SUBTRACT)

    # CSK for M3 Countersunk Flat Head Scr 3: CSK for M3 Countersunk Flat Head Screw3 ×2
    with Locations(*[(-i * CSK_FOR_M3_COUNTERSUNK_FLAT_HEAD_SCR_3_PITCH, 0, 0) for i in range(1, CSK_FOR_M3_COUNTERSUNK_FLAT_HEAD_SCR_3_COUNT)]):
        add(csk_for_m3_countersunk_flat_head_screw3, mode=Mode.SUBTRACT)

    # CSK for M3 Countersunk Flat Head Scr 4: CSK for M3 Countersunk Flat Head Screw3 ×2
    with Locations(*[Vector(-0.9322344855600483, -0.3618547552991284, 0) * (i * CSK_FOR_M3_COUNTERSUNK_FLAT_HEAD_SCR_4_PITCH) for i in range(1, CSK_FOR_M3_COUNTERSUNK_FLAT_HEAD_SCR_4_COUNT)]):
        add(csk_for_m3_countersunk_flat_head_screw3, mode=Mode.SUBTRACT)


solid = body_2.part
